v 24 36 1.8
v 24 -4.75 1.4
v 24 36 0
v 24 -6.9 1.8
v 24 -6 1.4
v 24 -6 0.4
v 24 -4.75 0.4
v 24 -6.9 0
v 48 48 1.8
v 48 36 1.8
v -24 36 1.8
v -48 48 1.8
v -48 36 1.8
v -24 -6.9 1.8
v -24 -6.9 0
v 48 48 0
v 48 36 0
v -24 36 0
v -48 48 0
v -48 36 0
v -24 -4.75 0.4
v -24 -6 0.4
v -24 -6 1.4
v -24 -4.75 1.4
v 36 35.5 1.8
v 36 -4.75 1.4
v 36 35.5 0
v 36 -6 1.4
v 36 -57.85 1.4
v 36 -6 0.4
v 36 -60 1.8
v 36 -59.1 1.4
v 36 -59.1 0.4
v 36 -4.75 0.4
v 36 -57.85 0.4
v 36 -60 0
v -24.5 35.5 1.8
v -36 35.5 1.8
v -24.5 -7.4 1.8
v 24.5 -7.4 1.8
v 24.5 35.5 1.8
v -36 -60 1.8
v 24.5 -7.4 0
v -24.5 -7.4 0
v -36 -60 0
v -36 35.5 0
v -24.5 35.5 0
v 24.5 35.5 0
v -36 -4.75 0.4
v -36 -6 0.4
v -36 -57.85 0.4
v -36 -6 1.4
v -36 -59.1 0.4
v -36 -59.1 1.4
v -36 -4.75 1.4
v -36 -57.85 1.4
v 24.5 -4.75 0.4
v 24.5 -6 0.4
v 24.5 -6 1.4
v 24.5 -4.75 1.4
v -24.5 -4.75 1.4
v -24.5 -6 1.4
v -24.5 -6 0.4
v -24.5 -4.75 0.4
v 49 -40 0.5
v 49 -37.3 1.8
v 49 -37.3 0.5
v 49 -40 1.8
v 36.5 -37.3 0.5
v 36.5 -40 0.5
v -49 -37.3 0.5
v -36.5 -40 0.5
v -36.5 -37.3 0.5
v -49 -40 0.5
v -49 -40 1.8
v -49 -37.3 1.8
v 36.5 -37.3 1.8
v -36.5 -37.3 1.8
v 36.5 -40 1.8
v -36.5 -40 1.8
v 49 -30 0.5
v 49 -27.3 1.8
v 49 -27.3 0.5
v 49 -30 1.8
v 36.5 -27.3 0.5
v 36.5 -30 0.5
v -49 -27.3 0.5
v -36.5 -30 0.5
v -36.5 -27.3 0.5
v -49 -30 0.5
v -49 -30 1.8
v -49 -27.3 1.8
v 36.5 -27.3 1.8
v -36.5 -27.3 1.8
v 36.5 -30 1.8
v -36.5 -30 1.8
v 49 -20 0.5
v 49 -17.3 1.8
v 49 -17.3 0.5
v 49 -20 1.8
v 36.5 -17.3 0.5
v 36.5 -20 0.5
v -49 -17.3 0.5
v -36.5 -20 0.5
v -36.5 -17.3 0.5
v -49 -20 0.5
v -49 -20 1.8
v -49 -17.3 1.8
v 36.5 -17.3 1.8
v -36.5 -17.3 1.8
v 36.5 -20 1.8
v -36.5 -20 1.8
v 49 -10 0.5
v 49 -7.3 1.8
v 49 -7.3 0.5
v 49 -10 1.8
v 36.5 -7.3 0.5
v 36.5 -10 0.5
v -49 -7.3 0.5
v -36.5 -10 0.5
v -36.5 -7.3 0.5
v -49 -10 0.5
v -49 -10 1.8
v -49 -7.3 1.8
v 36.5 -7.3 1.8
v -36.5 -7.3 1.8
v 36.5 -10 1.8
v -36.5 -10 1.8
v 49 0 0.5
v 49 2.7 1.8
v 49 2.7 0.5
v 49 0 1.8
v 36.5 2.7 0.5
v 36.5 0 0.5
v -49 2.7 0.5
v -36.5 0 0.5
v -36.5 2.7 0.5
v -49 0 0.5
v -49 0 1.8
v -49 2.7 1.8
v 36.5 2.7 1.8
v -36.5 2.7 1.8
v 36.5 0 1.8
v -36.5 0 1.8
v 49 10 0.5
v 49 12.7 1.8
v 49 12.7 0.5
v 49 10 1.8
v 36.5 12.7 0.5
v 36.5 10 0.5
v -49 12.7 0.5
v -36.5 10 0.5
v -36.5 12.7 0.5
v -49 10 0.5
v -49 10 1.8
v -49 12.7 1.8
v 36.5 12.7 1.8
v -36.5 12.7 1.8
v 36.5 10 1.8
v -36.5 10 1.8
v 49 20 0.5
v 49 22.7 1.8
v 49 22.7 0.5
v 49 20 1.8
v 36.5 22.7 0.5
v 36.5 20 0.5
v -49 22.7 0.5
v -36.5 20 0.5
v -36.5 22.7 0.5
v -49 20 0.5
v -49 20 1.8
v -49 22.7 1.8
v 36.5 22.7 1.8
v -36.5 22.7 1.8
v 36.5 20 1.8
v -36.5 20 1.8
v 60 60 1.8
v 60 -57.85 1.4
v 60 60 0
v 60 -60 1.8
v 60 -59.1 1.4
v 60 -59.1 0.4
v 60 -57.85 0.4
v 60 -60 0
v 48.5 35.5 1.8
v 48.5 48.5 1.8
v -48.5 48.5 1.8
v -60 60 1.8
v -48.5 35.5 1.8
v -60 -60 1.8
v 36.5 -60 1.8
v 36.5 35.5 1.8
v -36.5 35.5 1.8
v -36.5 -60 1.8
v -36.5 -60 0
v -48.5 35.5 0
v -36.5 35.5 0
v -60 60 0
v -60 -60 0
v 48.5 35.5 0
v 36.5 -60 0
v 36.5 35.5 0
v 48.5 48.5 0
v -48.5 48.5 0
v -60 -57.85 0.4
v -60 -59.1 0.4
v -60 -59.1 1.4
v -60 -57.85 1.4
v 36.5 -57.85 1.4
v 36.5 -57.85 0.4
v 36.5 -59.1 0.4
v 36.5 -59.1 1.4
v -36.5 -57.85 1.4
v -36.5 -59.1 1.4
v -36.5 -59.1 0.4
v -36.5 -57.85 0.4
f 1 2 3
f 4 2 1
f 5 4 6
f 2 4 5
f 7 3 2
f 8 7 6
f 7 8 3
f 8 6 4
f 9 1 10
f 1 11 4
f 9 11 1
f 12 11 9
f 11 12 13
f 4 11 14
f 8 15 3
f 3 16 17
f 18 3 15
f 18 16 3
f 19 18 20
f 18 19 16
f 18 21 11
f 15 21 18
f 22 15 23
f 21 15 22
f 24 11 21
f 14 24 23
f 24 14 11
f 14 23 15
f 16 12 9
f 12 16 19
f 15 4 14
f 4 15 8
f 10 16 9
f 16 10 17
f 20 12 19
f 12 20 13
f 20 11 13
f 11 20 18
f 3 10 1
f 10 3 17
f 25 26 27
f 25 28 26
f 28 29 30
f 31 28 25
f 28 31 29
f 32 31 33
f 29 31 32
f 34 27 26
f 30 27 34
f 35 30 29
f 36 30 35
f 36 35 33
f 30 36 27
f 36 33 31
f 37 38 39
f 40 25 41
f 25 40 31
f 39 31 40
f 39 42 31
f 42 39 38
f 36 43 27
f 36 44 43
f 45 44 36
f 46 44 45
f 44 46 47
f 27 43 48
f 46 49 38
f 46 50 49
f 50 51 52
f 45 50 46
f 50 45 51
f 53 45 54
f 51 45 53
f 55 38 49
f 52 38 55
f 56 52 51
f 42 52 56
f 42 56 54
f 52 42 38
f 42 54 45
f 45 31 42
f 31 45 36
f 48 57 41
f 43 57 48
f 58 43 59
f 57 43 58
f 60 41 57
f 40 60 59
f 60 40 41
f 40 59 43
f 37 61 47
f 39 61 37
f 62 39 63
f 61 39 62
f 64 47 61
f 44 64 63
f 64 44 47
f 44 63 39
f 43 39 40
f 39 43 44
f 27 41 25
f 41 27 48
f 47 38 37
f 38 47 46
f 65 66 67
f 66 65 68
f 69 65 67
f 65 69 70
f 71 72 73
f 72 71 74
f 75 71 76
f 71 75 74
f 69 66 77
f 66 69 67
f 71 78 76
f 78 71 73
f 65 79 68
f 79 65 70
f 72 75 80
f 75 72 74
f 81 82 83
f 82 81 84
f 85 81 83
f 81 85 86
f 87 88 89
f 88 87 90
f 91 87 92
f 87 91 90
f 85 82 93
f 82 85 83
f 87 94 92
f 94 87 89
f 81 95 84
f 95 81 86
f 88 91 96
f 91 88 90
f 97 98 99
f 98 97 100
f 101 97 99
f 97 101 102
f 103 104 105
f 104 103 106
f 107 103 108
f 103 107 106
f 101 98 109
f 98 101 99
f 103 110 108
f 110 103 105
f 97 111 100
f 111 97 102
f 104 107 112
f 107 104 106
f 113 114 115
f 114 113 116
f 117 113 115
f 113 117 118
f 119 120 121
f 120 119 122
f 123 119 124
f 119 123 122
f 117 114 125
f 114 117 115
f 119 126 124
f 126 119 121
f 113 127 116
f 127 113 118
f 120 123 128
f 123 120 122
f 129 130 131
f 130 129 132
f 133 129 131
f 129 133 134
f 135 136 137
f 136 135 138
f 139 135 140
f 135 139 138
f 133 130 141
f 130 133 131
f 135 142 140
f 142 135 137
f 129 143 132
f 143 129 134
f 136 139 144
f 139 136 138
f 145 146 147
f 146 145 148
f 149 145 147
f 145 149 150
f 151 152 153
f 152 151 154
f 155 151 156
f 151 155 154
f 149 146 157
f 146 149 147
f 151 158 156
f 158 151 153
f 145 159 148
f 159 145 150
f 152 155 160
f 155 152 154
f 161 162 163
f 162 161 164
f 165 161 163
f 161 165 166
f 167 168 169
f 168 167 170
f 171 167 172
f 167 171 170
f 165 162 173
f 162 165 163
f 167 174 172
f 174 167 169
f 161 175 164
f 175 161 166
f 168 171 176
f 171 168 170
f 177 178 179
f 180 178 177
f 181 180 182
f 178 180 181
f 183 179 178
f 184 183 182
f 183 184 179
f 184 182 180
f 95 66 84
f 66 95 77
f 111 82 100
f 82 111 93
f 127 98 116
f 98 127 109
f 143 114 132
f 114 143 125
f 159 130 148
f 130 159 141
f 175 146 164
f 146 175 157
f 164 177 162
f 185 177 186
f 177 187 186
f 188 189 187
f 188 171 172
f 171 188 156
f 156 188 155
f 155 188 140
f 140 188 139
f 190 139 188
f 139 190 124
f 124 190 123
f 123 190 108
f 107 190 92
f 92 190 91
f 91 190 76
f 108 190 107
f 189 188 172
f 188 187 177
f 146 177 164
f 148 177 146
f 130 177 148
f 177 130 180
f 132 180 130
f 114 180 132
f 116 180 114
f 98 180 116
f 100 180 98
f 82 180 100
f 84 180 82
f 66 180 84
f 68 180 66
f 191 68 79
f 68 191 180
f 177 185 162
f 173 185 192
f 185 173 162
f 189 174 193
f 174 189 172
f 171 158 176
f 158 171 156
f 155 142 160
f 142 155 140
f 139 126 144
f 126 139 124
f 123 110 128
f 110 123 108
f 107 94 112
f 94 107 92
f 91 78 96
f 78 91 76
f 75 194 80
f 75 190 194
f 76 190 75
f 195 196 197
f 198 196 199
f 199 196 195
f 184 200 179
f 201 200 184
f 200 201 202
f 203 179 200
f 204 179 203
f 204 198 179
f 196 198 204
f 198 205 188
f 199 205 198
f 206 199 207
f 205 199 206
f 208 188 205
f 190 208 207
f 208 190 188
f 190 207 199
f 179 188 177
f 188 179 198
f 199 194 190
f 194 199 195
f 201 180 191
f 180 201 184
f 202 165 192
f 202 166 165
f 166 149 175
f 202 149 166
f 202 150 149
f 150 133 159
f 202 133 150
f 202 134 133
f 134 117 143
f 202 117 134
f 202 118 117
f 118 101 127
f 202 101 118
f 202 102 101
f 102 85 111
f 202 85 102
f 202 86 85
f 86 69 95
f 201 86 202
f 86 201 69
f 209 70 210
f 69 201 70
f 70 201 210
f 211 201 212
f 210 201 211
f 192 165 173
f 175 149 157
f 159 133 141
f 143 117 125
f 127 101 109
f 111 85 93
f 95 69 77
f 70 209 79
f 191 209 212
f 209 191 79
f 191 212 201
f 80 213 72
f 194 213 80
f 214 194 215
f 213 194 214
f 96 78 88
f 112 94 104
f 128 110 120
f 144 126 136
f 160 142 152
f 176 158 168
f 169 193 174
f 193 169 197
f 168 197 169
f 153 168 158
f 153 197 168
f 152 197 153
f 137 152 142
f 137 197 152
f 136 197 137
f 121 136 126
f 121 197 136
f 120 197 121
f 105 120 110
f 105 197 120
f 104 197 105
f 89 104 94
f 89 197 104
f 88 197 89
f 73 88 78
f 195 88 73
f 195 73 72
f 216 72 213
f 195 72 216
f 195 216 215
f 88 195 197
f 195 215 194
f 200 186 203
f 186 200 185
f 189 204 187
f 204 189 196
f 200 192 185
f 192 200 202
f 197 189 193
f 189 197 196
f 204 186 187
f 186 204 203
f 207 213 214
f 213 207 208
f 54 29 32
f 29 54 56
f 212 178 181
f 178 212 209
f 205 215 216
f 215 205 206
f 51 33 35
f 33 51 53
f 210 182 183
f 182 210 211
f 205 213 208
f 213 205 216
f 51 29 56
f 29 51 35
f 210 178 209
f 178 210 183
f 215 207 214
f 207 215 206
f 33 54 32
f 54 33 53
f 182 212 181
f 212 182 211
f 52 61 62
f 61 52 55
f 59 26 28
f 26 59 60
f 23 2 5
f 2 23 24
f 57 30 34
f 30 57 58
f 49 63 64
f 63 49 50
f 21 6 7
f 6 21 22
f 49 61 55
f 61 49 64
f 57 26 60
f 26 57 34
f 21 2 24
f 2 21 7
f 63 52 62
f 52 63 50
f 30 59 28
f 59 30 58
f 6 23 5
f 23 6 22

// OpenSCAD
HOLE_DIAMETER = 0.4 + .3 + .3;
THICKNESS = 1.8;
THICKNESS2 = .5;

BORDER = 12;
SIZE = 120;
SIZE_Y = SIZE - BORDER;
SIZE_X = SIZE - BORDER*4;
PLAY = .5;

MARGIN = .17 * 1.5;
ATOM = .001;
STEP = 10;

$fn = $preview ? 120 : 60;

module grow() {
    minkowski() {
        children();
        cube(PLAY*2, center=true);
    }
}

module back() {
    difference() {
        cube([SIZE_X, SIZE_Y, THICKNESS]);
        grow() foot();
    }
}

module foot() {
    translate([BORDER, SIZE_Y/2 - THICKNESS/2, 0])
    cube([SIZE_X - BORDER*2, SIZE_Y/2+THICKNESS/2, THICKNESS]);

    translate([-BORDER, SIZE_Y - BORDER, 0])
    cube([SIZE_X + BORDER*2, BORDER, THICKNESS]);
}

module rest() {
    difference() {
        translate([-BORDER * 2, 0, 0])
        cube([SIZE_X + BORDER*4, SIZE_Y + BORDER, THICKNESS]);

        grow() {
            back();
            foot();
        }
        for(y=[STEP*2:STEP:SIZE_Y-BORDER-STEP])
            translate([-BORDER - PLAY*2, y, THICKNESS2])
            cube([SIZE_X + BORDER*2 + PLAY*4, THICKNESS*1.5, THICKNESS]);
    }
}

module all() {
    translate([-SIZE_X/2, -SIZE_Y/2 -BORDER/2, 0])
    difference() {
        union() {
            back();
            foot();
            rest();
        }
        
        dz = THICKNESS/2-HOLE_DIAMETER/2;
        dy = THICKNESS/2;

        translate([-BORDER*2 - BORDER/2, dy, dz])
        cube([SIZE_X+BORDER*5+BORDER, HOLE_DIAMETER*1.25, HOLE_DIAMETER]);

        translate([0, SIZE_Y/2 + dy*0, dz])
        cube([SIZE_X, HOLE_DIAMETER*1.25, HOLE_DIAMETER]);
    }    
}

//rotate([180, 0, 0])
all();

//%cube(SIZE, center=true);
